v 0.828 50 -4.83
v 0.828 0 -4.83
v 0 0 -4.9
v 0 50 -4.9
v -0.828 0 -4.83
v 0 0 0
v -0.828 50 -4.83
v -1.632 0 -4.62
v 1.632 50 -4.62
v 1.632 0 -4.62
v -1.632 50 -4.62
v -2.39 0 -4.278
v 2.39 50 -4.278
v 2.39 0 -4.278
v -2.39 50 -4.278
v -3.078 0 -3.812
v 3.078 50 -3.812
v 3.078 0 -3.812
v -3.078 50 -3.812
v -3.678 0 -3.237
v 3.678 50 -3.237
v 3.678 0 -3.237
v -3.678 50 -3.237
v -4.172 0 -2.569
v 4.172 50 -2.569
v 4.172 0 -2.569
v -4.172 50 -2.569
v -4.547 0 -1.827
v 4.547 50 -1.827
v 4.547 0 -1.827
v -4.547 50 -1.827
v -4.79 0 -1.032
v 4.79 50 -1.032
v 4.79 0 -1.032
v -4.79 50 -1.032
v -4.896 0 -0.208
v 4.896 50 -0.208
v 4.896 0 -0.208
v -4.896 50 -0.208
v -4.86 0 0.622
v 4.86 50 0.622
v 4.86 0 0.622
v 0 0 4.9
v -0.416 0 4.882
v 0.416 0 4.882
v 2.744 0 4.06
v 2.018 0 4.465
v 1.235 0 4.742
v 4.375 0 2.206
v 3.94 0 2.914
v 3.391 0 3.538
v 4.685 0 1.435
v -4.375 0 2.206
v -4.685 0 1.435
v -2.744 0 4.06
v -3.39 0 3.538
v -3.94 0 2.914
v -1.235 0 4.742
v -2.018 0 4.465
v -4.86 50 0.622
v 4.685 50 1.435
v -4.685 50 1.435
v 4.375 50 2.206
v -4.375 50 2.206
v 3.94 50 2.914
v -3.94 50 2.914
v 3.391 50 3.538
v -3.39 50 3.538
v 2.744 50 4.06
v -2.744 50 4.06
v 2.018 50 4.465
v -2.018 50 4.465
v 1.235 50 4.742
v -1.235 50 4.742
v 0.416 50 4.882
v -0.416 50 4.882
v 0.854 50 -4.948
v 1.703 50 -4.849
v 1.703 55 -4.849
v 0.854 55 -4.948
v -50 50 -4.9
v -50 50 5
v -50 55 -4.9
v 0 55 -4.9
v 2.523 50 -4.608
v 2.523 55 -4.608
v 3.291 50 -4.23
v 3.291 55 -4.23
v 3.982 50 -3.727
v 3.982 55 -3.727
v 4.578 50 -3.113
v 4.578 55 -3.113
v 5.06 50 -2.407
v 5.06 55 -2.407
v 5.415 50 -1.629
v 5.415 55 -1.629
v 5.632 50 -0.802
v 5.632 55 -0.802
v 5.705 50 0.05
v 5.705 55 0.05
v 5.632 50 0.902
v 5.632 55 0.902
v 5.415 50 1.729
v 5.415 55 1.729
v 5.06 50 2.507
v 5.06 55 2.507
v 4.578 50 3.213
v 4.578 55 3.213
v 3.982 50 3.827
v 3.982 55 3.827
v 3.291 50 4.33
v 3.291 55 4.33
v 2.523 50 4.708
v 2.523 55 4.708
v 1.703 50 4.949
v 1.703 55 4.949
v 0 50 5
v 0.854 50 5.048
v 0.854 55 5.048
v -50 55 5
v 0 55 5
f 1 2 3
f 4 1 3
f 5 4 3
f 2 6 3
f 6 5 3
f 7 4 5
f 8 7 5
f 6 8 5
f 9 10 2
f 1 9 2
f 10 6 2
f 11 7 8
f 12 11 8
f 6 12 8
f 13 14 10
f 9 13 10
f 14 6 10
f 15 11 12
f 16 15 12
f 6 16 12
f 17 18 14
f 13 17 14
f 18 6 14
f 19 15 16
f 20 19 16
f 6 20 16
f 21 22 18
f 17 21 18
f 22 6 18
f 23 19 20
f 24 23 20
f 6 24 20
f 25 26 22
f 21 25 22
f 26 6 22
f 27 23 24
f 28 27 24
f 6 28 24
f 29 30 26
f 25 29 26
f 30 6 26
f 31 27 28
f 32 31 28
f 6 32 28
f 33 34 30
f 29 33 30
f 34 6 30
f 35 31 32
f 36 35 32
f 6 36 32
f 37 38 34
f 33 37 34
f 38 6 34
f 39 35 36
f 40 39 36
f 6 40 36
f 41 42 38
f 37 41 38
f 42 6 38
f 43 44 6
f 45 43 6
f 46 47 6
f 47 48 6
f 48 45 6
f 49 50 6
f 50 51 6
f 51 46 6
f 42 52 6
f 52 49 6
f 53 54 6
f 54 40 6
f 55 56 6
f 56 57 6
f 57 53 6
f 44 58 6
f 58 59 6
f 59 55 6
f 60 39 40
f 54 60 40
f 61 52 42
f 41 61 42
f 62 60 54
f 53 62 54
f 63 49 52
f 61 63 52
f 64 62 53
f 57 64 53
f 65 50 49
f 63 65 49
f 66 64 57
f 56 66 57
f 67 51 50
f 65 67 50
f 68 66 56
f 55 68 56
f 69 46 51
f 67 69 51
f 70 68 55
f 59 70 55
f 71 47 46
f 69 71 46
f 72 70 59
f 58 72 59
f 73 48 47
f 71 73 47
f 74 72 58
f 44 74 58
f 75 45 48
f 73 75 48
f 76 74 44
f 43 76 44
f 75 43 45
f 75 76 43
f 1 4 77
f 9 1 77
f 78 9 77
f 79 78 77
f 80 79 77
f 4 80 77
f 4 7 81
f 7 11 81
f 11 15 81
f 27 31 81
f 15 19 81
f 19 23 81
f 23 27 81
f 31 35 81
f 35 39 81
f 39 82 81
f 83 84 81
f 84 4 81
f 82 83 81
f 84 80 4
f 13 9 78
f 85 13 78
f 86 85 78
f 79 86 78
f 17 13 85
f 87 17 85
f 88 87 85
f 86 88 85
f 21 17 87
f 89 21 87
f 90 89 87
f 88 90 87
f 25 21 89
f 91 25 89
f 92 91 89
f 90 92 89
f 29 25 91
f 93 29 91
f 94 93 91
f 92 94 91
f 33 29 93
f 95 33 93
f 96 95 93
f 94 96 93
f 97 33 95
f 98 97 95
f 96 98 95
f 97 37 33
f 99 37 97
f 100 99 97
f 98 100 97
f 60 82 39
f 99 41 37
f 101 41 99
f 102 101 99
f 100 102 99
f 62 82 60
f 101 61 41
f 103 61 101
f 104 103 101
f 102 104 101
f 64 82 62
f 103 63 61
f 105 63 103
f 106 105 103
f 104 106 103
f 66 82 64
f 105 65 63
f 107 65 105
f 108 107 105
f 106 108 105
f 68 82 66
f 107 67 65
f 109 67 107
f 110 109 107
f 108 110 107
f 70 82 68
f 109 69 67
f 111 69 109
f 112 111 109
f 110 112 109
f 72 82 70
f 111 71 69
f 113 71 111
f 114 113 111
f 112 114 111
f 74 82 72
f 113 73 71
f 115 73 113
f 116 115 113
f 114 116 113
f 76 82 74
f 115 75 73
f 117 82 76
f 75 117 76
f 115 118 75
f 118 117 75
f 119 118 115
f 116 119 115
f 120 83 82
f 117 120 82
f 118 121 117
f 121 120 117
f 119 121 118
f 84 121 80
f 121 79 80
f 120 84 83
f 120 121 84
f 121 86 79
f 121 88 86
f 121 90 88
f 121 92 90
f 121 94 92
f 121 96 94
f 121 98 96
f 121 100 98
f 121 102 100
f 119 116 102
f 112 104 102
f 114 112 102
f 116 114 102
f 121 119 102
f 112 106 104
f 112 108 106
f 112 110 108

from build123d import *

# Parameters (mm, degrees)
SKETCH1_R           = 4.9
BOSS_EXTRUDE1_DEPTH = 50
BOSS_EXTRUDE2_DEPTH = 5


with BuildPart() as part:
    # Sketch1 → Boss-Extrude1 (new body)
    with BuildSketch(Plane(origin=(0, 0, 0), x_dir=(1, 0, 0), z_dir=(0, 1, 0))):
        with Locations(Location((0, 0, 0), (0, 0, 270))):
            Circle(SKETCH1_R)
    extrude(amount=BOSS_EXTRUDE1_DEPTH)

    # Sketch2 → Boss-Extrude2 (add)
    with BuildSketch(Plane(origin=(0, 50, 0), x_dir=(1, 0, 0), z_dir=(0, 1, 0))):
        with BuildLine():
            Line((0, 4.9), (-50, 4.9))
            Line((-50, 4.9), (-50, -5))
            Line((-50, -5), (0, -5))
            ThreePointArc((0, -5), (5.705336799, -0.05), (0, 4.9))
        make_face()
    extrude(amount=BOSS_EXTRUDE2_DEPTH)


solid = part.part
